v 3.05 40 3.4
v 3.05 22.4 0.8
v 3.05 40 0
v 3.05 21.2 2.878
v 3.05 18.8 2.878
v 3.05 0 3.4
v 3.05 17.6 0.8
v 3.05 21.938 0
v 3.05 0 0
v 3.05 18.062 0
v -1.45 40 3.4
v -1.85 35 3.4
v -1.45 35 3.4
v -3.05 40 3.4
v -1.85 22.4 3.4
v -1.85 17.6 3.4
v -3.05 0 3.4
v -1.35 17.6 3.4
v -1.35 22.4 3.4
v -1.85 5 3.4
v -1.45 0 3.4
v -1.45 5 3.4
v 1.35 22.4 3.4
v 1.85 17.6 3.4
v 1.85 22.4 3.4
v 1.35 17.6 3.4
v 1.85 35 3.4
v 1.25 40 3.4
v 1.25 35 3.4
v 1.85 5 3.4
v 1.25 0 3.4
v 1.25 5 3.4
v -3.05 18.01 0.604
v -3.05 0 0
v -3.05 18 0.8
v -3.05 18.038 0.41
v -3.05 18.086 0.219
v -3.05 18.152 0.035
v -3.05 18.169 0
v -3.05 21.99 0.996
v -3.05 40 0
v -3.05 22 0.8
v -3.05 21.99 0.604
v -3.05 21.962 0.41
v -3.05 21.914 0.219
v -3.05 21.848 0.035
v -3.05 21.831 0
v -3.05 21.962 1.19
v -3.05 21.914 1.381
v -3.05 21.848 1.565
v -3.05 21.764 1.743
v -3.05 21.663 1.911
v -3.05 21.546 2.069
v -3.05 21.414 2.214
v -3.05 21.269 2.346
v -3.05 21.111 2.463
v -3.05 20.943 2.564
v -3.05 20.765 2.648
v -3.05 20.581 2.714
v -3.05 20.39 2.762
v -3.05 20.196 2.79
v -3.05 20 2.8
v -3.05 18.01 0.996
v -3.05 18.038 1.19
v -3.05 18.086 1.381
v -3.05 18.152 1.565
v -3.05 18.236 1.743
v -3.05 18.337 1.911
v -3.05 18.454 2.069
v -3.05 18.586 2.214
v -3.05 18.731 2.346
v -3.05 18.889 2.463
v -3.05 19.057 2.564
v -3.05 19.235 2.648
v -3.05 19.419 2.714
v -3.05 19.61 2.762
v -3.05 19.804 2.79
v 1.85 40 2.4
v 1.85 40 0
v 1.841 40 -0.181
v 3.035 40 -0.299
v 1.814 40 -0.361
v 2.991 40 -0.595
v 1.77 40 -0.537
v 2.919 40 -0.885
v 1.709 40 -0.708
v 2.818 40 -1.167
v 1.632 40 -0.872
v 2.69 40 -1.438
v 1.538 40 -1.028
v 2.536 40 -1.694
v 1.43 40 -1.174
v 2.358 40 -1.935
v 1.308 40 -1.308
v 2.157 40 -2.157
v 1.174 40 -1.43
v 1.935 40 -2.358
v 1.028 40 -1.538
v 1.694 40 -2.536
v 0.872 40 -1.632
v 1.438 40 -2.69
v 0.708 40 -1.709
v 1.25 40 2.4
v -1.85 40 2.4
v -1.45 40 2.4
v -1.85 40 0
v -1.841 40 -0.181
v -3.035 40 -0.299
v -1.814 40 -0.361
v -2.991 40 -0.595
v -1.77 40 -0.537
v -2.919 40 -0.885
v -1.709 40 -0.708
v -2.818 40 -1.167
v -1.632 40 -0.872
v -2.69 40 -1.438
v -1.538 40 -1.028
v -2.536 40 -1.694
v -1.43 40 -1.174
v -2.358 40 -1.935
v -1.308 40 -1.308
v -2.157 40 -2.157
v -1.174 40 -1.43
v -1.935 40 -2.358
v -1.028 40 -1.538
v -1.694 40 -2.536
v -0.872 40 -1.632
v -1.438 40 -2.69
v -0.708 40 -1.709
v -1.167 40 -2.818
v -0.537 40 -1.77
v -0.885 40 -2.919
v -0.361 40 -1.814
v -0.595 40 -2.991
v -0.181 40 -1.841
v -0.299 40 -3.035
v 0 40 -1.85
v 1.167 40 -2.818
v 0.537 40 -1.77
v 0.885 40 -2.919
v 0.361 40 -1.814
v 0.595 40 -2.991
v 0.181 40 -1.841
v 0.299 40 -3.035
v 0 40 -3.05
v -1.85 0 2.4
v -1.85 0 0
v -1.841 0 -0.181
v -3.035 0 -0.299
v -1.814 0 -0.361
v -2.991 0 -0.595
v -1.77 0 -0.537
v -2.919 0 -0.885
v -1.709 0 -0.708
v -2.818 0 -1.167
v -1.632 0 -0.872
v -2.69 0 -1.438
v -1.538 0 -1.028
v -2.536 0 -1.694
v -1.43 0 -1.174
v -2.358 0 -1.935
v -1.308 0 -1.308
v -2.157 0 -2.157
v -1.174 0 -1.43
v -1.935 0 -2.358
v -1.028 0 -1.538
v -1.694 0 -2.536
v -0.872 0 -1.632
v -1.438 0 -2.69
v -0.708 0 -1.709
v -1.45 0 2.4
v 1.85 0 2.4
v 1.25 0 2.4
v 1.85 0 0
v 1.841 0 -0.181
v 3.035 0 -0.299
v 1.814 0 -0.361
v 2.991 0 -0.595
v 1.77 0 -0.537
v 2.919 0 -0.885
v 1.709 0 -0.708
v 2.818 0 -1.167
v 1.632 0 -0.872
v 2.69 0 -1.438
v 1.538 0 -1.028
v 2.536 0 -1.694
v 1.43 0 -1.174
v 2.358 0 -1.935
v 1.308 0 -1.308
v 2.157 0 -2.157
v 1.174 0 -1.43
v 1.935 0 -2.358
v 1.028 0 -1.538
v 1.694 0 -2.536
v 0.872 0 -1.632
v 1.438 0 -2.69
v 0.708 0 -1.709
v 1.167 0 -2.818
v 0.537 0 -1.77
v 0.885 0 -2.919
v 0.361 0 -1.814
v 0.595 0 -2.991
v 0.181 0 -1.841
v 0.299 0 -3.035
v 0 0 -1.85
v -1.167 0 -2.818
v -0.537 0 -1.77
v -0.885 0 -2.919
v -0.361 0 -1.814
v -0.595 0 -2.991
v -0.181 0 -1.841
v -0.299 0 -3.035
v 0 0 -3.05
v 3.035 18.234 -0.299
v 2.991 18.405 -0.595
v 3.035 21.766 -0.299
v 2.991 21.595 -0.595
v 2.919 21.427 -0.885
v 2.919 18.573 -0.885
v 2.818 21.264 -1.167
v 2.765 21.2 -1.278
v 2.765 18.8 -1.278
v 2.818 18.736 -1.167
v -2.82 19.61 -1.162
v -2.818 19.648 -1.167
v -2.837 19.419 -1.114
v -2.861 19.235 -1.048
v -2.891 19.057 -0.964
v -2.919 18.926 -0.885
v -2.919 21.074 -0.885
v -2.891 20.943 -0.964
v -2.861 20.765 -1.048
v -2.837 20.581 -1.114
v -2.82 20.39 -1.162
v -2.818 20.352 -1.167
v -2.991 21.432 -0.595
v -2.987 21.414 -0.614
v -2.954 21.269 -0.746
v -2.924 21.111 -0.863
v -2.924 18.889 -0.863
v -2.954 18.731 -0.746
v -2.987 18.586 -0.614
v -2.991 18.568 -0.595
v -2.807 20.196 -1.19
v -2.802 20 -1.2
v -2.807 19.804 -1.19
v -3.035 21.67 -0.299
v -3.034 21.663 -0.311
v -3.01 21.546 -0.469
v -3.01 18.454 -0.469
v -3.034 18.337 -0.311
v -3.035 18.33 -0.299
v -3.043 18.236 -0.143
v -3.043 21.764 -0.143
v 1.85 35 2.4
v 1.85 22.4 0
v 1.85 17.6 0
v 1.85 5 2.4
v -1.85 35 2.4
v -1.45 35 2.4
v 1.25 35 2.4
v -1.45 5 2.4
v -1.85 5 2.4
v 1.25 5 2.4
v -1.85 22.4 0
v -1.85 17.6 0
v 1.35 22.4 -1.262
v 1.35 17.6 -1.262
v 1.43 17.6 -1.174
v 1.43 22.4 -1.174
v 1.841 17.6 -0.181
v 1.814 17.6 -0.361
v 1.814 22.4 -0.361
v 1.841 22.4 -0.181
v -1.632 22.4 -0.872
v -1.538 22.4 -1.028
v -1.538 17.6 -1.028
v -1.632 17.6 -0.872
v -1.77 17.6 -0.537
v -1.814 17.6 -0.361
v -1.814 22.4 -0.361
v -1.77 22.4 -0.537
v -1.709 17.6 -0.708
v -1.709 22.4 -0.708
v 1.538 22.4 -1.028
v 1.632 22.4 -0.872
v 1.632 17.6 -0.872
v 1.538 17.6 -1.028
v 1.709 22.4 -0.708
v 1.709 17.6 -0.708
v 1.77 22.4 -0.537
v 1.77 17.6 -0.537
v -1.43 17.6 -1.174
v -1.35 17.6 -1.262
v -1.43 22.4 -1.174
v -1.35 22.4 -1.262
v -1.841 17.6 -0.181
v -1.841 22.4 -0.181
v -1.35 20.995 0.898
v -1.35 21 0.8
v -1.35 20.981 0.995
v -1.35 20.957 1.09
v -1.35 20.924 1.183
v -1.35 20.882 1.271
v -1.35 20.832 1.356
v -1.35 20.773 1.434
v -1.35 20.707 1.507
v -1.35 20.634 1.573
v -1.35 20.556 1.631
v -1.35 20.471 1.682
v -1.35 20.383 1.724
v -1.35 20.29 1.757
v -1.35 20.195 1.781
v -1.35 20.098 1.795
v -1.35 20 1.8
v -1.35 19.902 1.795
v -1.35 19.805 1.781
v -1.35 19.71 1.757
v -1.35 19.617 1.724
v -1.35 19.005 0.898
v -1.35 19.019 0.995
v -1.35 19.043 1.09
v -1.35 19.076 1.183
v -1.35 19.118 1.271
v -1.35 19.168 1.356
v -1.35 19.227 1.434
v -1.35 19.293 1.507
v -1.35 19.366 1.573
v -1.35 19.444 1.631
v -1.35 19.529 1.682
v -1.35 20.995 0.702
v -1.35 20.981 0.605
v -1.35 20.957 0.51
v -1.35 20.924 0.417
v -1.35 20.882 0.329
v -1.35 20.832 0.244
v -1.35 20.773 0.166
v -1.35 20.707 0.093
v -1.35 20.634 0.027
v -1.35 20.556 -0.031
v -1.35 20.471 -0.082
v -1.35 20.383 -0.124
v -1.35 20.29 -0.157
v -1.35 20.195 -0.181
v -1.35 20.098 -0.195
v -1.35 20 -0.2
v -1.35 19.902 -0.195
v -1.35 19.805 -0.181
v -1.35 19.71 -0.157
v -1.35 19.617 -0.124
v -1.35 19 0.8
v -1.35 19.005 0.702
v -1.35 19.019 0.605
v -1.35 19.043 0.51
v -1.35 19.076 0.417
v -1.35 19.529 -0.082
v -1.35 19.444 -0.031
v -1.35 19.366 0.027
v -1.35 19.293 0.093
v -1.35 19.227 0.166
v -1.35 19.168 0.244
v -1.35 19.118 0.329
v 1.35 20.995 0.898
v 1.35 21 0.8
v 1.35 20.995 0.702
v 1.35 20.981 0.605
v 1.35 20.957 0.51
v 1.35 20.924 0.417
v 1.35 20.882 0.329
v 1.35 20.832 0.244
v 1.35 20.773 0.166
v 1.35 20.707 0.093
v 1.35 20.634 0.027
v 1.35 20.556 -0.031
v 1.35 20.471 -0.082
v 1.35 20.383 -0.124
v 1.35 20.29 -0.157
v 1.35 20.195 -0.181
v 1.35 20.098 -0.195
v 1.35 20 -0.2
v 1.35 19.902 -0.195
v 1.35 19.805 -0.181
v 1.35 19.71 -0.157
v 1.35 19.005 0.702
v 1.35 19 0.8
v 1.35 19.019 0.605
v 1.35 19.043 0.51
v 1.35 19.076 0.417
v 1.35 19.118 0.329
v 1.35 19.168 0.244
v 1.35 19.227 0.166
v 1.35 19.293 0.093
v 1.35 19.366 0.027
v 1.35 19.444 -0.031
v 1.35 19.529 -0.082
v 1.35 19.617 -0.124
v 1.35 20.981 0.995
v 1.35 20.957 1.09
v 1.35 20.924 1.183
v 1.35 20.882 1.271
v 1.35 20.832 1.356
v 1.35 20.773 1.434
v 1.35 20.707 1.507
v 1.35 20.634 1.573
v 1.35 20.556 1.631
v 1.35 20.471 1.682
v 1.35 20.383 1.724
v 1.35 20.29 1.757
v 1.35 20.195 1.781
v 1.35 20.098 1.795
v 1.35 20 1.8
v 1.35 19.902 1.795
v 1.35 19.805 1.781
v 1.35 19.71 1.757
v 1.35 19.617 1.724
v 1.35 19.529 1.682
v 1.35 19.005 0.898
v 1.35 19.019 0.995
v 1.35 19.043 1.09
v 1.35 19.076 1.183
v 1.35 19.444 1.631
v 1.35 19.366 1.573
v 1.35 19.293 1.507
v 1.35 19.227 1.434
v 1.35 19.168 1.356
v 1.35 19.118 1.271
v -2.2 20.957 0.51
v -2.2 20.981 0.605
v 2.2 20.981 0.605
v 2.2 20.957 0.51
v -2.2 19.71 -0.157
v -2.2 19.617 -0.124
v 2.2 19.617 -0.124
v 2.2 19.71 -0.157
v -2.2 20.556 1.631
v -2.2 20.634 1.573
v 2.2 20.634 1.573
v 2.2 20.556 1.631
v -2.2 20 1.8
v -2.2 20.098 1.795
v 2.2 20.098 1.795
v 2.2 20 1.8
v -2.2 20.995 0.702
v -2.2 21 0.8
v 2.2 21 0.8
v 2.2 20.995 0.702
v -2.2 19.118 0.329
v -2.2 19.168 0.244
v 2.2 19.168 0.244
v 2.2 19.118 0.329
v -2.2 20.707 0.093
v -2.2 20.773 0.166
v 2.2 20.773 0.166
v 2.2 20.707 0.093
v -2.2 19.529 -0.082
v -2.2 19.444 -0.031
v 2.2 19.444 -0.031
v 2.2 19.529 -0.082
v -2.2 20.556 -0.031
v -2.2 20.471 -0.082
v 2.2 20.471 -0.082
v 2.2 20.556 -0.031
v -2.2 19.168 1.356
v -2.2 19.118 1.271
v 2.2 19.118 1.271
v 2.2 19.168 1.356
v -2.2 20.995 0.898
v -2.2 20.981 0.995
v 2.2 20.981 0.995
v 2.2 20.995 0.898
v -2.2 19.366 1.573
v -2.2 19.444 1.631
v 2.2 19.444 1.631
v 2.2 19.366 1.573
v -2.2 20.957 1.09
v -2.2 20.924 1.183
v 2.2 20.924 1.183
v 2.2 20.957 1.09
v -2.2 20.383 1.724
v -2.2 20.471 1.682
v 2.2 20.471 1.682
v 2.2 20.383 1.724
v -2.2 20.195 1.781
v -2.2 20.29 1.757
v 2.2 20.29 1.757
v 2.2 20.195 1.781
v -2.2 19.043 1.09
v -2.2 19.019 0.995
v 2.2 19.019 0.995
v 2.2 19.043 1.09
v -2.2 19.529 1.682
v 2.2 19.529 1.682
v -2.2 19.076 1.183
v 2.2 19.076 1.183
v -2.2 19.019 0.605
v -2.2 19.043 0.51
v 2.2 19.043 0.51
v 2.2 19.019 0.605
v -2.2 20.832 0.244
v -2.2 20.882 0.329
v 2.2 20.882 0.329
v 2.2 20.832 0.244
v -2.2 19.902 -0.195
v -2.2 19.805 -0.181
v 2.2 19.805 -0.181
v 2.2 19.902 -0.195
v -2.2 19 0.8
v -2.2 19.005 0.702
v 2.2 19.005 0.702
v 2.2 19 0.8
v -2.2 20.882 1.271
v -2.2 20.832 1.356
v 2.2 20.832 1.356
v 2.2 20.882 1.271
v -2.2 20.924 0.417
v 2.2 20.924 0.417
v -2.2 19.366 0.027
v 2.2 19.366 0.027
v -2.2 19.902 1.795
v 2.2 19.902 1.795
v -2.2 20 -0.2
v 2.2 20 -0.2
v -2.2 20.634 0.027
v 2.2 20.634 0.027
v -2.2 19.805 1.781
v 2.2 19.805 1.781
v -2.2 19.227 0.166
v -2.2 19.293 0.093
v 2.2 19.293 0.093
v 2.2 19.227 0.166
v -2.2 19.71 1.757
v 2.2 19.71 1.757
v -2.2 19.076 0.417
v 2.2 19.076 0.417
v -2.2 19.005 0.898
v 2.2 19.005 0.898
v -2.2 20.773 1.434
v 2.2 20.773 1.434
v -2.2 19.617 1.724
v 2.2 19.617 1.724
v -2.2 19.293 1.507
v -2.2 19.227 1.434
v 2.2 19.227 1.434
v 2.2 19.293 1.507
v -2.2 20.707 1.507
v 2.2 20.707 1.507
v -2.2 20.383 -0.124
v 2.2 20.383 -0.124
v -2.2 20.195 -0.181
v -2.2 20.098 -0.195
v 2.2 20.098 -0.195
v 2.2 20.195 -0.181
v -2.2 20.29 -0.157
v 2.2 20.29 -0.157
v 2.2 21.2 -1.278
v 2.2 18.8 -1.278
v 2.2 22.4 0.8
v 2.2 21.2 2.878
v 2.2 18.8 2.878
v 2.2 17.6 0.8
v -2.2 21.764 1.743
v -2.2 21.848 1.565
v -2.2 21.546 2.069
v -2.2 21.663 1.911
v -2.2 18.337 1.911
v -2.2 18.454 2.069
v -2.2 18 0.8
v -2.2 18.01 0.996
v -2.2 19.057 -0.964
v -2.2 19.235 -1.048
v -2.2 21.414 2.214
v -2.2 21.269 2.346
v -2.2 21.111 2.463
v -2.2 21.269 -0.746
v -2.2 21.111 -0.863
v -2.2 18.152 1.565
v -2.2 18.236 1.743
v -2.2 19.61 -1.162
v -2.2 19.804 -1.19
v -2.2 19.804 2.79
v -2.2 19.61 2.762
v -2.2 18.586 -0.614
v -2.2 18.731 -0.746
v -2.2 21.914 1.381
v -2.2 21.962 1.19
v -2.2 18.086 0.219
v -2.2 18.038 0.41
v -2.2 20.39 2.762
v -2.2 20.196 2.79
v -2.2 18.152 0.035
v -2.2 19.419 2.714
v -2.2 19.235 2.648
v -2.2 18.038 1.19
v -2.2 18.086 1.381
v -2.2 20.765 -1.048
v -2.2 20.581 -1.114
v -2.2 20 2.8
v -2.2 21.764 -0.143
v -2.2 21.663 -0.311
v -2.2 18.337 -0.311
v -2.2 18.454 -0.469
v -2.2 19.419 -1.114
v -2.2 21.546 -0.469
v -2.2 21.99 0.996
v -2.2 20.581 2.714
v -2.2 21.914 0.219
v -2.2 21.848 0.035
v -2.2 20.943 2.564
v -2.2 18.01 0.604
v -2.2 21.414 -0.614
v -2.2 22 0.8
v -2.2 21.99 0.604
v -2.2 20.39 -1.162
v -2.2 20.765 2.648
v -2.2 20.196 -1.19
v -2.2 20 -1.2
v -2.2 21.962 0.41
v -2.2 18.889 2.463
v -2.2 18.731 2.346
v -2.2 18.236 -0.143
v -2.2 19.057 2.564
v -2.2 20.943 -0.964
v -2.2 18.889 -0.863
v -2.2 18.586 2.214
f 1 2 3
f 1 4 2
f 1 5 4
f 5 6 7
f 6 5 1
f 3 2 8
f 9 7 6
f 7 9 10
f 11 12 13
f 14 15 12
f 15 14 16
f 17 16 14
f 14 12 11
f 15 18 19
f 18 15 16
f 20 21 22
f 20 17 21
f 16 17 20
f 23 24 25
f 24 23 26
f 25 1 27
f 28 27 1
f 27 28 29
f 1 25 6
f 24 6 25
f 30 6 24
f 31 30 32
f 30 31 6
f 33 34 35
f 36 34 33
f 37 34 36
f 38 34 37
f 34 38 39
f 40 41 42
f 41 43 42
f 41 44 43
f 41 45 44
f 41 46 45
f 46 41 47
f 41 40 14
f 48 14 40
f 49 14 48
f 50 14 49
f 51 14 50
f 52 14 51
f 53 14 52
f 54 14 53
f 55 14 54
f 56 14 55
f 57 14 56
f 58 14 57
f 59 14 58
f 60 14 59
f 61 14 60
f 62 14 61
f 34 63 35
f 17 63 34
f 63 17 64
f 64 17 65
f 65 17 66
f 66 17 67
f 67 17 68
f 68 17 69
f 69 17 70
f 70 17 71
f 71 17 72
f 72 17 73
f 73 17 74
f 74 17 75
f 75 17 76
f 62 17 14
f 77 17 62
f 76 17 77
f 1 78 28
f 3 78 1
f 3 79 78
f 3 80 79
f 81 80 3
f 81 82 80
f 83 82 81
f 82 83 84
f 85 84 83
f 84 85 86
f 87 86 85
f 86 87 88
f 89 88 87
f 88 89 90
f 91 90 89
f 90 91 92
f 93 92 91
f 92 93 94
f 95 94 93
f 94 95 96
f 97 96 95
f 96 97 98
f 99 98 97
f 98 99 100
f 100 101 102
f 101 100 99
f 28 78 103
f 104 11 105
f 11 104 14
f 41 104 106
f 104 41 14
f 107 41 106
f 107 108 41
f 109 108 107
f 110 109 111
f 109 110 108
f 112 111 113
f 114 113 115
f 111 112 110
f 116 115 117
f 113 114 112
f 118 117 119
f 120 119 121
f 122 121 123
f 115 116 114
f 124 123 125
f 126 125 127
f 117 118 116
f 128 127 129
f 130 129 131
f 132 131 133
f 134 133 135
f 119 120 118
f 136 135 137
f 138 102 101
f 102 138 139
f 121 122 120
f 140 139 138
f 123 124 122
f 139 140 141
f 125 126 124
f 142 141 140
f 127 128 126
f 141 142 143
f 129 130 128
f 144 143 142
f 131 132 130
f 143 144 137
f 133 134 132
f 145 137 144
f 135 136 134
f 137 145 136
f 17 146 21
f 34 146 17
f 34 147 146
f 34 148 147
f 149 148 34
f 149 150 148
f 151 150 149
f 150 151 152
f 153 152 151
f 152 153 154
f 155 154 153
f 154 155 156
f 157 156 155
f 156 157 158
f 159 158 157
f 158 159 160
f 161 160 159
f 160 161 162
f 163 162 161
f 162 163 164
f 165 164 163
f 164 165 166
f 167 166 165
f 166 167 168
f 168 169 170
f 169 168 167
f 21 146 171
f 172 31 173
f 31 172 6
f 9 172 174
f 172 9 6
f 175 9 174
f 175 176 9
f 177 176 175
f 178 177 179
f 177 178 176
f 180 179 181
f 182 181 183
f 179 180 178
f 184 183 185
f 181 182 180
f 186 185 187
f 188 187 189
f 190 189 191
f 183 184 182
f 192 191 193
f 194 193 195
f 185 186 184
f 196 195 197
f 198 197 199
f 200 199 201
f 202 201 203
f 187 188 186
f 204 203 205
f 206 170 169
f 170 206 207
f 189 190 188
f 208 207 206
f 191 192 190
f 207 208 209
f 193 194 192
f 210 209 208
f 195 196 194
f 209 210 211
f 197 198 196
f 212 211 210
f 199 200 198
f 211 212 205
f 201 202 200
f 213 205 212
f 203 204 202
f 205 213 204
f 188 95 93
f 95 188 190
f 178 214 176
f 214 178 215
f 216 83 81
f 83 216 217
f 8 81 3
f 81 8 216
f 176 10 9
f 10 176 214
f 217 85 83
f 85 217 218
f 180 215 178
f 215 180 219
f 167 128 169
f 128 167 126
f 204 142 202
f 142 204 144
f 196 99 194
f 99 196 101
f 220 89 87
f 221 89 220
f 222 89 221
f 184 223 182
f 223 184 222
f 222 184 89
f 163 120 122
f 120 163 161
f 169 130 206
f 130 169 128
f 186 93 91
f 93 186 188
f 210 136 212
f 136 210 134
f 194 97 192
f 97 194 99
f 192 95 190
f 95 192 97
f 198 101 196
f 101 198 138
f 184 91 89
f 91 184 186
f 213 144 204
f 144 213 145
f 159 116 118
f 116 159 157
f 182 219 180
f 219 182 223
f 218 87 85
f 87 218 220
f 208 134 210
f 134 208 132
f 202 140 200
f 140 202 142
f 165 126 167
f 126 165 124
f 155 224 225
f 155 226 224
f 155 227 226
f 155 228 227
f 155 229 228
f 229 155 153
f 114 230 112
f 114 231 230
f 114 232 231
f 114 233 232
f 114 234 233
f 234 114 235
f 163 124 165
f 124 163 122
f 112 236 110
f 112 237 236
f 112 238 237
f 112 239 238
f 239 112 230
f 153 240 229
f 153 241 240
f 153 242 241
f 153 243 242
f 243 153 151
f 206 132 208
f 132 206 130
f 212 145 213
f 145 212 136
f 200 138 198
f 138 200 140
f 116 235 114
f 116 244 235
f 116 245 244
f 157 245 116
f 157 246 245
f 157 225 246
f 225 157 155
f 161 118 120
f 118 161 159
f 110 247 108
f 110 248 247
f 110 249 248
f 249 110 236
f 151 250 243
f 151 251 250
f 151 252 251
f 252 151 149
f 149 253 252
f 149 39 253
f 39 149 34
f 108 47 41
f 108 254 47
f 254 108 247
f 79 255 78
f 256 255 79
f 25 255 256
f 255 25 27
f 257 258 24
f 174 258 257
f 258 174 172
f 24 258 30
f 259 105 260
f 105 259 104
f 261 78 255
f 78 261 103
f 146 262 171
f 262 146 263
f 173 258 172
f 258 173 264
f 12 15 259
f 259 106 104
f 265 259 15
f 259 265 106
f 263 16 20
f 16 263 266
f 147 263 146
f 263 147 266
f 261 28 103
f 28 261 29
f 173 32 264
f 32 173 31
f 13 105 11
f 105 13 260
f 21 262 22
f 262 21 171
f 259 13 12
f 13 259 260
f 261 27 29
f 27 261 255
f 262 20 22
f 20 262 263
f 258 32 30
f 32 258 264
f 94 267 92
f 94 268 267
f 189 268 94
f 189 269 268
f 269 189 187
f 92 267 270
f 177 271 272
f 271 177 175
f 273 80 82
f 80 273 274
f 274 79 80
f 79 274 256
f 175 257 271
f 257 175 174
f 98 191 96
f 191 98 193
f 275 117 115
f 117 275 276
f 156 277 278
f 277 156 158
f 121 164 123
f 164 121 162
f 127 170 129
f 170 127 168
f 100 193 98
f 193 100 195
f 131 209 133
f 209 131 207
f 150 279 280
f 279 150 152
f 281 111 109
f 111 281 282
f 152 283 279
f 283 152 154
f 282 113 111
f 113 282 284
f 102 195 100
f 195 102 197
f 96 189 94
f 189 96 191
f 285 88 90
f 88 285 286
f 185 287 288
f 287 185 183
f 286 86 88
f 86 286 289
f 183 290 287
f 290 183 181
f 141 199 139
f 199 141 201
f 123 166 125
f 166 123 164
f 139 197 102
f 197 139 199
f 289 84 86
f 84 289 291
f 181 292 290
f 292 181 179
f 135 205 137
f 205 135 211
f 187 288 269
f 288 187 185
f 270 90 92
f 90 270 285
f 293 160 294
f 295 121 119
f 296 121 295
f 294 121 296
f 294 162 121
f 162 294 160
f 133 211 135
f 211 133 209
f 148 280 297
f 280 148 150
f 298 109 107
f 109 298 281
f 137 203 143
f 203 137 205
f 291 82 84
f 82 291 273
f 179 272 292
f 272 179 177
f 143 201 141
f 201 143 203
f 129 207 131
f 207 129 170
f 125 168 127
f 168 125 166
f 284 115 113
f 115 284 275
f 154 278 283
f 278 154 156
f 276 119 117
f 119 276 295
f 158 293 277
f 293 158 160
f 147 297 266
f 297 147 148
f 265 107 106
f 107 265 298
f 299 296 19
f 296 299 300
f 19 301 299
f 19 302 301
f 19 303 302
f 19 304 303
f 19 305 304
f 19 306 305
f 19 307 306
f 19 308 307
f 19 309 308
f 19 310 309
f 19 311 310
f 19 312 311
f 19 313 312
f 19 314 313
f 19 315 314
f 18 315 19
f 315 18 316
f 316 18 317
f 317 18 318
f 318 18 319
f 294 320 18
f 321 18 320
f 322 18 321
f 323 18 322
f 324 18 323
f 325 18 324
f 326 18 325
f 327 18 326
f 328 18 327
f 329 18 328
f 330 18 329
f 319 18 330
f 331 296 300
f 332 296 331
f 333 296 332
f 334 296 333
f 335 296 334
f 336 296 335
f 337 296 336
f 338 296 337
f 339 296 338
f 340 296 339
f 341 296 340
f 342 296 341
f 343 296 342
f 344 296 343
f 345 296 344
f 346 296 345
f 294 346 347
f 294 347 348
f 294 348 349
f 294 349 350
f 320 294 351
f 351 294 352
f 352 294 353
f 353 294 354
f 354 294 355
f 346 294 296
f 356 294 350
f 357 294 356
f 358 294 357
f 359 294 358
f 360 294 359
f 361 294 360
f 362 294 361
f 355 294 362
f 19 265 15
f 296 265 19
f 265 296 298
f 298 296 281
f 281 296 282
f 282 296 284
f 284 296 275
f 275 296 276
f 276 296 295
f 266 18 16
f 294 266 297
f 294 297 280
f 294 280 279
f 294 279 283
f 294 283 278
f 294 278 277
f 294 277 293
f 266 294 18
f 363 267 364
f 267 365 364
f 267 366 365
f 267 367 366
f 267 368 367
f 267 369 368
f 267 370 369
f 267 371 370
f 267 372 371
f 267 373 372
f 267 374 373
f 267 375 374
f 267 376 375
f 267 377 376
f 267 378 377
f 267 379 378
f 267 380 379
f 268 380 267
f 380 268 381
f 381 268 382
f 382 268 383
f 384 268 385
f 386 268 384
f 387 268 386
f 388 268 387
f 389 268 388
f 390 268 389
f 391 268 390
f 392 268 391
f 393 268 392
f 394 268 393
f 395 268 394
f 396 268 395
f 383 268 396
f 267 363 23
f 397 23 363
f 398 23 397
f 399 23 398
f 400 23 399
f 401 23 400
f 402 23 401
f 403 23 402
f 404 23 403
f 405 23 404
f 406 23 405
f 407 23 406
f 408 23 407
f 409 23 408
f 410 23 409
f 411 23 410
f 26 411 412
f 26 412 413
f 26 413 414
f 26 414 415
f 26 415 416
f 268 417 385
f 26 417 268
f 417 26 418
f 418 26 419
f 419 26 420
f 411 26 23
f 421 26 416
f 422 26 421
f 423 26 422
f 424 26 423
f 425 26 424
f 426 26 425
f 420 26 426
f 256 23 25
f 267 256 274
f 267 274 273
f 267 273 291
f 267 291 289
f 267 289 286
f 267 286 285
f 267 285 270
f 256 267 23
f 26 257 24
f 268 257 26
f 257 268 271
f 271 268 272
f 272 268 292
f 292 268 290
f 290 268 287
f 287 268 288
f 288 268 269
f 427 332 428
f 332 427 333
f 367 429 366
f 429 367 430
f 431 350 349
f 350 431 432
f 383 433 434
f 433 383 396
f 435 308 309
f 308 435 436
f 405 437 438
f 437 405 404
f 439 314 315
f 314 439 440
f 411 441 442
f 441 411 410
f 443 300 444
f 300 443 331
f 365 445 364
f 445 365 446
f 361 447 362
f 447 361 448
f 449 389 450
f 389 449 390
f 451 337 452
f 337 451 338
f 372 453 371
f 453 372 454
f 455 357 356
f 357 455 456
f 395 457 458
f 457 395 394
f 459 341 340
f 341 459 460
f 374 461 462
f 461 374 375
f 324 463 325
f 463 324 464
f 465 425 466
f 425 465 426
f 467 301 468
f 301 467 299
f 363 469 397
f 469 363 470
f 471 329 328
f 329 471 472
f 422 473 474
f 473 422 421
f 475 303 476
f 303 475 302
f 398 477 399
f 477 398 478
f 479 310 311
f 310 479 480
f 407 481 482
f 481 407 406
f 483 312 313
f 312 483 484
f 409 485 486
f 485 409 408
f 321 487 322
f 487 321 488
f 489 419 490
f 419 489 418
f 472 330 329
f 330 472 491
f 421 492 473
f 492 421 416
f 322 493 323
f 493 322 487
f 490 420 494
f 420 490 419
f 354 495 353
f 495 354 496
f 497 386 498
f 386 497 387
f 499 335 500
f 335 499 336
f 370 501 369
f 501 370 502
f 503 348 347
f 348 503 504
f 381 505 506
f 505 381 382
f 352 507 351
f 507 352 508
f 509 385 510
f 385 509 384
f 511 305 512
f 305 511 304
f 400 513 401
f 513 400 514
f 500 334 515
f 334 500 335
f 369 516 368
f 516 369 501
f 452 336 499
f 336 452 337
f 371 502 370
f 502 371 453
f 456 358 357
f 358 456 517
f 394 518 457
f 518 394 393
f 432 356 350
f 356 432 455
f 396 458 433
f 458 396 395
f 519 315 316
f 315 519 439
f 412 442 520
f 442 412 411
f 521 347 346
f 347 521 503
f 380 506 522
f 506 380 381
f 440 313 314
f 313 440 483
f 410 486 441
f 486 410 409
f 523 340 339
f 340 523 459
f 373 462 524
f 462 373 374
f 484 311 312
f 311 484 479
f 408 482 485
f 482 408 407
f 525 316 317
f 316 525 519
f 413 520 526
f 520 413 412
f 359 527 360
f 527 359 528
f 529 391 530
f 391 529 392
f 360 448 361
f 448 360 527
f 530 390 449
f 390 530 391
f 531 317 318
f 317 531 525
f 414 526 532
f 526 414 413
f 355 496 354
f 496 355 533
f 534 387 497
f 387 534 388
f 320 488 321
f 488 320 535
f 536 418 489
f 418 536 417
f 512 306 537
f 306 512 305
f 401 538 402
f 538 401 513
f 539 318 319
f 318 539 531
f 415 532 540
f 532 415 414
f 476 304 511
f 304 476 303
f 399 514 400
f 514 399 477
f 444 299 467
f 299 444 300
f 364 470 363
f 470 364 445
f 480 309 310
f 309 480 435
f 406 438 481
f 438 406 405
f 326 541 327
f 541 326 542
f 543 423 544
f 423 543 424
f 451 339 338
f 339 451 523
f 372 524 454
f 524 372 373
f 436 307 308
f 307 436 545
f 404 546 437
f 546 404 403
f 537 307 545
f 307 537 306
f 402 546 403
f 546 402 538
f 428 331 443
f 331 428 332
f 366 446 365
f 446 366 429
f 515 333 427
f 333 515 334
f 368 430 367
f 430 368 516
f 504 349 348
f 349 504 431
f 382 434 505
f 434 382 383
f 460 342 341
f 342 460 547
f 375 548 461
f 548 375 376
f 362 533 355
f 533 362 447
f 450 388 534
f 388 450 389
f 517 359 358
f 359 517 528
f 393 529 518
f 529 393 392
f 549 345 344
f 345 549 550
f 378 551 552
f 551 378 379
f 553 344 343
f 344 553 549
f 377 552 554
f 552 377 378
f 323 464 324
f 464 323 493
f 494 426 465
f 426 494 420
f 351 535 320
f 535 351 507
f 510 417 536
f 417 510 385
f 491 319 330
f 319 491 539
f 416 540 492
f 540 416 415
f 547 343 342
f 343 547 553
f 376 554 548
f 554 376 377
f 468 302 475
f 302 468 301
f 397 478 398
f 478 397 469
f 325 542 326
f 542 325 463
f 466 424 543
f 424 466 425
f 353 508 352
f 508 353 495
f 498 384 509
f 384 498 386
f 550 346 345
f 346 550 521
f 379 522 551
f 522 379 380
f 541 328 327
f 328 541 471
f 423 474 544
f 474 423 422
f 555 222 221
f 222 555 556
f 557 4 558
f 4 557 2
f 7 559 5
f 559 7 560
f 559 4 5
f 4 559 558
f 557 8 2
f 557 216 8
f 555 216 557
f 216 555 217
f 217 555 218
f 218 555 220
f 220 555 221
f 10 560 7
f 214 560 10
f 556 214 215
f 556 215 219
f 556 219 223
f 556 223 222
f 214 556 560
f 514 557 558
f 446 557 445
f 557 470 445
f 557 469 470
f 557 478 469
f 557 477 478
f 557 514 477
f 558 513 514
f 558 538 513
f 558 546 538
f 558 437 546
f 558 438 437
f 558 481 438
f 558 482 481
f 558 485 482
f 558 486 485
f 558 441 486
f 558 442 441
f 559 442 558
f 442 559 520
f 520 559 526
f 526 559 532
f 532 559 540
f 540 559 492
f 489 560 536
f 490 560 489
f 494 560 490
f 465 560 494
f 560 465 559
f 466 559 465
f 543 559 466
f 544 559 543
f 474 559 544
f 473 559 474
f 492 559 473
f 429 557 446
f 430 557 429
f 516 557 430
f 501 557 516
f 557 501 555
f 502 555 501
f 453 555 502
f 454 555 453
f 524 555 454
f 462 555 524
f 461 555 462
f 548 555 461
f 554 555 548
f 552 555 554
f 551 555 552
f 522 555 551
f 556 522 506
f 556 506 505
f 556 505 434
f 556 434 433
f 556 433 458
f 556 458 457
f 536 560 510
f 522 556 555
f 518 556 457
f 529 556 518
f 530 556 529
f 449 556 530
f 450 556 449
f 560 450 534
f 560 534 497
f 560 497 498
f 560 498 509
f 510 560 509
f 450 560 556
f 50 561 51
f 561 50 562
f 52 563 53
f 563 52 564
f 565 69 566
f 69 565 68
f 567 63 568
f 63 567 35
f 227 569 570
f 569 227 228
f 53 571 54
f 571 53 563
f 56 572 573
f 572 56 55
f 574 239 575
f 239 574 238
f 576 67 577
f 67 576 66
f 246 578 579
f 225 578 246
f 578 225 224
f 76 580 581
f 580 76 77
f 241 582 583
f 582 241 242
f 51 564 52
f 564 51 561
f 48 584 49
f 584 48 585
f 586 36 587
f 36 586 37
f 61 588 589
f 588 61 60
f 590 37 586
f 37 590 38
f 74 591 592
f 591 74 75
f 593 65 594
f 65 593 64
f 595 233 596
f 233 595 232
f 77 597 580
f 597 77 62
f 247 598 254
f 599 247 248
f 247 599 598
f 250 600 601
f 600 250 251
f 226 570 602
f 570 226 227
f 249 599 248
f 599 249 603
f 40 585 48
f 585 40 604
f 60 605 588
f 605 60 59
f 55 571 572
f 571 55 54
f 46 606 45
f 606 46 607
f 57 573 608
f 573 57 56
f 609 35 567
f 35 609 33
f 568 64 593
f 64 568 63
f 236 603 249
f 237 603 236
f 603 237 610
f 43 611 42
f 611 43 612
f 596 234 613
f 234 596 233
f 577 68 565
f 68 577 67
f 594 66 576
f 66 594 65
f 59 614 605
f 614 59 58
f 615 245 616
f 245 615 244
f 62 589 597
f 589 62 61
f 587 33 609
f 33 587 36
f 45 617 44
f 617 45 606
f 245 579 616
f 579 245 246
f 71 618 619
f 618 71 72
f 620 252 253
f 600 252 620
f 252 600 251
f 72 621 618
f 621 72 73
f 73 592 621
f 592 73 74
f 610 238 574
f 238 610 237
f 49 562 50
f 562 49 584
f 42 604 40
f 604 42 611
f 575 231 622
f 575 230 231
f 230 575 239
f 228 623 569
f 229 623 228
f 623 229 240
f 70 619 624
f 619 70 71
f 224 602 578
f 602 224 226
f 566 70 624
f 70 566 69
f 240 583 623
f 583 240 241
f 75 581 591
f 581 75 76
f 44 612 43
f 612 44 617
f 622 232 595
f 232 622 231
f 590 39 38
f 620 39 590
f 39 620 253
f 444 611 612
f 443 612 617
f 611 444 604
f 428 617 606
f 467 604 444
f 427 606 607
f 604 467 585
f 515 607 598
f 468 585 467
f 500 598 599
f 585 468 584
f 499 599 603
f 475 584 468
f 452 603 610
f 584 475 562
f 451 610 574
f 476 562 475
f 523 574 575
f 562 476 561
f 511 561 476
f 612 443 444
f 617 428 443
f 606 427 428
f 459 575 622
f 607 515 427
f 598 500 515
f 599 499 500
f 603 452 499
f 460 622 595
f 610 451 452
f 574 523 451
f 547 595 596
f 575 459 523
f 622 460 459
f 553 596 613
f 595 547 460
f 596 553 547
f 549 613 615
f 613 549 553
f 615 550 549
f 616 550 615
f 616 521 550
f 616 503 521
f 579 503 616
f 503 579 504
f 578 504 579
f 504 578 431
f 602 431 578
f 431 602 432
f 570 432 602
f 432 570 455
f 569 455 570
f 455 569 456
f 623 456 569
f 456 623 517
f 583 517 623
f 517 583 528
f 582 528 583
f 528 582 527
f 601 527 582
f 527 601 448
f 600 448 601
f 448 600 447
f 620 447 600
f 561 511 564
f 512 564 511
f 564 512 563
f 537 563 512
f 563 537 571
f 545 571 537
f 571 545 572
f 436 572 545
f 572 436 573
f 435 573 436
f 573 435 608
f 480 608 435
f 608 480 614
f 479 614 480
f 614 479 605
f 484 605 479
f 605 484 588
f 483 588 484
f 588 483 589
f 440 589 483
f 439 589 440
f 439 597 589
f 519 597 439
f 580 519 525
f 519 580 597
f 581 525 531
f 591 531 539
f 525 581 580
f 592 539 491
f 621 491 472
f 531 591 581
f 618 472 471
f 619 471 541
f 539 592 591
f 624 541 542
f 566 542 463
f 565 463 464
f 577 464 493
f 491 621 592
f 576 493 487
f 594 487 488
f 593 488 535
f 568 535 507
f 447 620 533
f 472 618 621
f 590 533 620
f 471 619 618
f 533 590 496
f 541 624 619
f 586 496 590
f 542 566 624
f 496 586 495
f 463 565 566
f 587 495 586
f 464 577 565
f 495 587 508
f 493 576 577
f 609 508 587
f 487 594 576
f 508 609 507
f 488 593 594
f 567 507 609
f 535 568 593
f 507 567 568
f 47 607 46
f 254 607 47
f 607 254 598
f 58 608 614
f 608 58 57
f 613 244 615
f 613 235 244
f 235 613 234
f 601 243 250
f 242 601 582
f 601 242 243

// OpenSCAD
supp_dia = 3.5;
supp_hgt = 3.4;
supp_len = 40;
supp_stf = 1.2;

tooth_hgt = 1.0;
tooth_gap_len = 30;
tooth_gap_offset = (supp_len/2) - (tooth_gap_len/2);

narrow_len = 4.8;
narrow_offset = (supp_len/2) - (narrow_len/2);

buffer = 0.2;

supp_dia_buf = supp_dia + buffer;
supp_irad = (supp_dia / 2) + (buffer / 2);
supp_orad = supp_irad + supp_stf;

intersection() {
    difference() {
        cube_x_offset=-(supp_orad);
        union() {
            translate([cube_x_offset, 0, 0]) cube([supp_orad * 2, supp_len, supp_hgt]);
            rotate([-90, 0, 0]) cylinder(h=supp_len, r=supp_orad, $fn = 64);
        }
        union() {
            difference() {
                x_offset=-(supp_irad);
                union() {
                    translate([x_offset, 0, 0]) cube([supp_dia_buf, supp_len, supp_hgt-tooth_hgt]);
                    translate([x_offset + 0.4, 0, 0]) cube([supp_dia_buf - tooth_hgt, supp_len, supp_hgt]);
                    translate([x_offset, tooth_gap_offset, 0]) cube([supp_dia_buf, tooth_gap_len, supp_hgt]);
                    rotate([-90, 0, 0]) cylinder(h=supp_len, r=supp_irad, $fn = 64);
                }
                #union() {
                    narrow_x = (supp_stf - buffer)/2;
                    translate([x_offset, narrow_offset, -1.5]) cube([narrow_x, narrow_len, supp_hgt+1.5]);
                    translate([x_offset + (supp_dia_buf - narrow_x), narrow_offset, -1.5]) cube([narrow_x, narrow_len, supp_hgt+1.5]);
                }
            }
            translate([0, supp_len / 2, 0.8]) rotate([0, -90, 0]) cylinder(h=supp_orad*2, r=1, center=true, $fn=64);
            translate([3, supp_len / 2, 0.8]) rotate([90, 0, 0]) rotate([0, -90, 0]) cylinder(h=1.6, r=(2 + 0.4), center=true, $fn=6);
            translate([-3, supp_len / 2, 0.8]) rotate([90, 0, 0]) rotate([0, -90, 0]) cylinder(h=1.6, r=2, center=true, $fn=64);
        }
    }
    // translate([-5, 15, -5]) cube([10, 10, 10]);
}
